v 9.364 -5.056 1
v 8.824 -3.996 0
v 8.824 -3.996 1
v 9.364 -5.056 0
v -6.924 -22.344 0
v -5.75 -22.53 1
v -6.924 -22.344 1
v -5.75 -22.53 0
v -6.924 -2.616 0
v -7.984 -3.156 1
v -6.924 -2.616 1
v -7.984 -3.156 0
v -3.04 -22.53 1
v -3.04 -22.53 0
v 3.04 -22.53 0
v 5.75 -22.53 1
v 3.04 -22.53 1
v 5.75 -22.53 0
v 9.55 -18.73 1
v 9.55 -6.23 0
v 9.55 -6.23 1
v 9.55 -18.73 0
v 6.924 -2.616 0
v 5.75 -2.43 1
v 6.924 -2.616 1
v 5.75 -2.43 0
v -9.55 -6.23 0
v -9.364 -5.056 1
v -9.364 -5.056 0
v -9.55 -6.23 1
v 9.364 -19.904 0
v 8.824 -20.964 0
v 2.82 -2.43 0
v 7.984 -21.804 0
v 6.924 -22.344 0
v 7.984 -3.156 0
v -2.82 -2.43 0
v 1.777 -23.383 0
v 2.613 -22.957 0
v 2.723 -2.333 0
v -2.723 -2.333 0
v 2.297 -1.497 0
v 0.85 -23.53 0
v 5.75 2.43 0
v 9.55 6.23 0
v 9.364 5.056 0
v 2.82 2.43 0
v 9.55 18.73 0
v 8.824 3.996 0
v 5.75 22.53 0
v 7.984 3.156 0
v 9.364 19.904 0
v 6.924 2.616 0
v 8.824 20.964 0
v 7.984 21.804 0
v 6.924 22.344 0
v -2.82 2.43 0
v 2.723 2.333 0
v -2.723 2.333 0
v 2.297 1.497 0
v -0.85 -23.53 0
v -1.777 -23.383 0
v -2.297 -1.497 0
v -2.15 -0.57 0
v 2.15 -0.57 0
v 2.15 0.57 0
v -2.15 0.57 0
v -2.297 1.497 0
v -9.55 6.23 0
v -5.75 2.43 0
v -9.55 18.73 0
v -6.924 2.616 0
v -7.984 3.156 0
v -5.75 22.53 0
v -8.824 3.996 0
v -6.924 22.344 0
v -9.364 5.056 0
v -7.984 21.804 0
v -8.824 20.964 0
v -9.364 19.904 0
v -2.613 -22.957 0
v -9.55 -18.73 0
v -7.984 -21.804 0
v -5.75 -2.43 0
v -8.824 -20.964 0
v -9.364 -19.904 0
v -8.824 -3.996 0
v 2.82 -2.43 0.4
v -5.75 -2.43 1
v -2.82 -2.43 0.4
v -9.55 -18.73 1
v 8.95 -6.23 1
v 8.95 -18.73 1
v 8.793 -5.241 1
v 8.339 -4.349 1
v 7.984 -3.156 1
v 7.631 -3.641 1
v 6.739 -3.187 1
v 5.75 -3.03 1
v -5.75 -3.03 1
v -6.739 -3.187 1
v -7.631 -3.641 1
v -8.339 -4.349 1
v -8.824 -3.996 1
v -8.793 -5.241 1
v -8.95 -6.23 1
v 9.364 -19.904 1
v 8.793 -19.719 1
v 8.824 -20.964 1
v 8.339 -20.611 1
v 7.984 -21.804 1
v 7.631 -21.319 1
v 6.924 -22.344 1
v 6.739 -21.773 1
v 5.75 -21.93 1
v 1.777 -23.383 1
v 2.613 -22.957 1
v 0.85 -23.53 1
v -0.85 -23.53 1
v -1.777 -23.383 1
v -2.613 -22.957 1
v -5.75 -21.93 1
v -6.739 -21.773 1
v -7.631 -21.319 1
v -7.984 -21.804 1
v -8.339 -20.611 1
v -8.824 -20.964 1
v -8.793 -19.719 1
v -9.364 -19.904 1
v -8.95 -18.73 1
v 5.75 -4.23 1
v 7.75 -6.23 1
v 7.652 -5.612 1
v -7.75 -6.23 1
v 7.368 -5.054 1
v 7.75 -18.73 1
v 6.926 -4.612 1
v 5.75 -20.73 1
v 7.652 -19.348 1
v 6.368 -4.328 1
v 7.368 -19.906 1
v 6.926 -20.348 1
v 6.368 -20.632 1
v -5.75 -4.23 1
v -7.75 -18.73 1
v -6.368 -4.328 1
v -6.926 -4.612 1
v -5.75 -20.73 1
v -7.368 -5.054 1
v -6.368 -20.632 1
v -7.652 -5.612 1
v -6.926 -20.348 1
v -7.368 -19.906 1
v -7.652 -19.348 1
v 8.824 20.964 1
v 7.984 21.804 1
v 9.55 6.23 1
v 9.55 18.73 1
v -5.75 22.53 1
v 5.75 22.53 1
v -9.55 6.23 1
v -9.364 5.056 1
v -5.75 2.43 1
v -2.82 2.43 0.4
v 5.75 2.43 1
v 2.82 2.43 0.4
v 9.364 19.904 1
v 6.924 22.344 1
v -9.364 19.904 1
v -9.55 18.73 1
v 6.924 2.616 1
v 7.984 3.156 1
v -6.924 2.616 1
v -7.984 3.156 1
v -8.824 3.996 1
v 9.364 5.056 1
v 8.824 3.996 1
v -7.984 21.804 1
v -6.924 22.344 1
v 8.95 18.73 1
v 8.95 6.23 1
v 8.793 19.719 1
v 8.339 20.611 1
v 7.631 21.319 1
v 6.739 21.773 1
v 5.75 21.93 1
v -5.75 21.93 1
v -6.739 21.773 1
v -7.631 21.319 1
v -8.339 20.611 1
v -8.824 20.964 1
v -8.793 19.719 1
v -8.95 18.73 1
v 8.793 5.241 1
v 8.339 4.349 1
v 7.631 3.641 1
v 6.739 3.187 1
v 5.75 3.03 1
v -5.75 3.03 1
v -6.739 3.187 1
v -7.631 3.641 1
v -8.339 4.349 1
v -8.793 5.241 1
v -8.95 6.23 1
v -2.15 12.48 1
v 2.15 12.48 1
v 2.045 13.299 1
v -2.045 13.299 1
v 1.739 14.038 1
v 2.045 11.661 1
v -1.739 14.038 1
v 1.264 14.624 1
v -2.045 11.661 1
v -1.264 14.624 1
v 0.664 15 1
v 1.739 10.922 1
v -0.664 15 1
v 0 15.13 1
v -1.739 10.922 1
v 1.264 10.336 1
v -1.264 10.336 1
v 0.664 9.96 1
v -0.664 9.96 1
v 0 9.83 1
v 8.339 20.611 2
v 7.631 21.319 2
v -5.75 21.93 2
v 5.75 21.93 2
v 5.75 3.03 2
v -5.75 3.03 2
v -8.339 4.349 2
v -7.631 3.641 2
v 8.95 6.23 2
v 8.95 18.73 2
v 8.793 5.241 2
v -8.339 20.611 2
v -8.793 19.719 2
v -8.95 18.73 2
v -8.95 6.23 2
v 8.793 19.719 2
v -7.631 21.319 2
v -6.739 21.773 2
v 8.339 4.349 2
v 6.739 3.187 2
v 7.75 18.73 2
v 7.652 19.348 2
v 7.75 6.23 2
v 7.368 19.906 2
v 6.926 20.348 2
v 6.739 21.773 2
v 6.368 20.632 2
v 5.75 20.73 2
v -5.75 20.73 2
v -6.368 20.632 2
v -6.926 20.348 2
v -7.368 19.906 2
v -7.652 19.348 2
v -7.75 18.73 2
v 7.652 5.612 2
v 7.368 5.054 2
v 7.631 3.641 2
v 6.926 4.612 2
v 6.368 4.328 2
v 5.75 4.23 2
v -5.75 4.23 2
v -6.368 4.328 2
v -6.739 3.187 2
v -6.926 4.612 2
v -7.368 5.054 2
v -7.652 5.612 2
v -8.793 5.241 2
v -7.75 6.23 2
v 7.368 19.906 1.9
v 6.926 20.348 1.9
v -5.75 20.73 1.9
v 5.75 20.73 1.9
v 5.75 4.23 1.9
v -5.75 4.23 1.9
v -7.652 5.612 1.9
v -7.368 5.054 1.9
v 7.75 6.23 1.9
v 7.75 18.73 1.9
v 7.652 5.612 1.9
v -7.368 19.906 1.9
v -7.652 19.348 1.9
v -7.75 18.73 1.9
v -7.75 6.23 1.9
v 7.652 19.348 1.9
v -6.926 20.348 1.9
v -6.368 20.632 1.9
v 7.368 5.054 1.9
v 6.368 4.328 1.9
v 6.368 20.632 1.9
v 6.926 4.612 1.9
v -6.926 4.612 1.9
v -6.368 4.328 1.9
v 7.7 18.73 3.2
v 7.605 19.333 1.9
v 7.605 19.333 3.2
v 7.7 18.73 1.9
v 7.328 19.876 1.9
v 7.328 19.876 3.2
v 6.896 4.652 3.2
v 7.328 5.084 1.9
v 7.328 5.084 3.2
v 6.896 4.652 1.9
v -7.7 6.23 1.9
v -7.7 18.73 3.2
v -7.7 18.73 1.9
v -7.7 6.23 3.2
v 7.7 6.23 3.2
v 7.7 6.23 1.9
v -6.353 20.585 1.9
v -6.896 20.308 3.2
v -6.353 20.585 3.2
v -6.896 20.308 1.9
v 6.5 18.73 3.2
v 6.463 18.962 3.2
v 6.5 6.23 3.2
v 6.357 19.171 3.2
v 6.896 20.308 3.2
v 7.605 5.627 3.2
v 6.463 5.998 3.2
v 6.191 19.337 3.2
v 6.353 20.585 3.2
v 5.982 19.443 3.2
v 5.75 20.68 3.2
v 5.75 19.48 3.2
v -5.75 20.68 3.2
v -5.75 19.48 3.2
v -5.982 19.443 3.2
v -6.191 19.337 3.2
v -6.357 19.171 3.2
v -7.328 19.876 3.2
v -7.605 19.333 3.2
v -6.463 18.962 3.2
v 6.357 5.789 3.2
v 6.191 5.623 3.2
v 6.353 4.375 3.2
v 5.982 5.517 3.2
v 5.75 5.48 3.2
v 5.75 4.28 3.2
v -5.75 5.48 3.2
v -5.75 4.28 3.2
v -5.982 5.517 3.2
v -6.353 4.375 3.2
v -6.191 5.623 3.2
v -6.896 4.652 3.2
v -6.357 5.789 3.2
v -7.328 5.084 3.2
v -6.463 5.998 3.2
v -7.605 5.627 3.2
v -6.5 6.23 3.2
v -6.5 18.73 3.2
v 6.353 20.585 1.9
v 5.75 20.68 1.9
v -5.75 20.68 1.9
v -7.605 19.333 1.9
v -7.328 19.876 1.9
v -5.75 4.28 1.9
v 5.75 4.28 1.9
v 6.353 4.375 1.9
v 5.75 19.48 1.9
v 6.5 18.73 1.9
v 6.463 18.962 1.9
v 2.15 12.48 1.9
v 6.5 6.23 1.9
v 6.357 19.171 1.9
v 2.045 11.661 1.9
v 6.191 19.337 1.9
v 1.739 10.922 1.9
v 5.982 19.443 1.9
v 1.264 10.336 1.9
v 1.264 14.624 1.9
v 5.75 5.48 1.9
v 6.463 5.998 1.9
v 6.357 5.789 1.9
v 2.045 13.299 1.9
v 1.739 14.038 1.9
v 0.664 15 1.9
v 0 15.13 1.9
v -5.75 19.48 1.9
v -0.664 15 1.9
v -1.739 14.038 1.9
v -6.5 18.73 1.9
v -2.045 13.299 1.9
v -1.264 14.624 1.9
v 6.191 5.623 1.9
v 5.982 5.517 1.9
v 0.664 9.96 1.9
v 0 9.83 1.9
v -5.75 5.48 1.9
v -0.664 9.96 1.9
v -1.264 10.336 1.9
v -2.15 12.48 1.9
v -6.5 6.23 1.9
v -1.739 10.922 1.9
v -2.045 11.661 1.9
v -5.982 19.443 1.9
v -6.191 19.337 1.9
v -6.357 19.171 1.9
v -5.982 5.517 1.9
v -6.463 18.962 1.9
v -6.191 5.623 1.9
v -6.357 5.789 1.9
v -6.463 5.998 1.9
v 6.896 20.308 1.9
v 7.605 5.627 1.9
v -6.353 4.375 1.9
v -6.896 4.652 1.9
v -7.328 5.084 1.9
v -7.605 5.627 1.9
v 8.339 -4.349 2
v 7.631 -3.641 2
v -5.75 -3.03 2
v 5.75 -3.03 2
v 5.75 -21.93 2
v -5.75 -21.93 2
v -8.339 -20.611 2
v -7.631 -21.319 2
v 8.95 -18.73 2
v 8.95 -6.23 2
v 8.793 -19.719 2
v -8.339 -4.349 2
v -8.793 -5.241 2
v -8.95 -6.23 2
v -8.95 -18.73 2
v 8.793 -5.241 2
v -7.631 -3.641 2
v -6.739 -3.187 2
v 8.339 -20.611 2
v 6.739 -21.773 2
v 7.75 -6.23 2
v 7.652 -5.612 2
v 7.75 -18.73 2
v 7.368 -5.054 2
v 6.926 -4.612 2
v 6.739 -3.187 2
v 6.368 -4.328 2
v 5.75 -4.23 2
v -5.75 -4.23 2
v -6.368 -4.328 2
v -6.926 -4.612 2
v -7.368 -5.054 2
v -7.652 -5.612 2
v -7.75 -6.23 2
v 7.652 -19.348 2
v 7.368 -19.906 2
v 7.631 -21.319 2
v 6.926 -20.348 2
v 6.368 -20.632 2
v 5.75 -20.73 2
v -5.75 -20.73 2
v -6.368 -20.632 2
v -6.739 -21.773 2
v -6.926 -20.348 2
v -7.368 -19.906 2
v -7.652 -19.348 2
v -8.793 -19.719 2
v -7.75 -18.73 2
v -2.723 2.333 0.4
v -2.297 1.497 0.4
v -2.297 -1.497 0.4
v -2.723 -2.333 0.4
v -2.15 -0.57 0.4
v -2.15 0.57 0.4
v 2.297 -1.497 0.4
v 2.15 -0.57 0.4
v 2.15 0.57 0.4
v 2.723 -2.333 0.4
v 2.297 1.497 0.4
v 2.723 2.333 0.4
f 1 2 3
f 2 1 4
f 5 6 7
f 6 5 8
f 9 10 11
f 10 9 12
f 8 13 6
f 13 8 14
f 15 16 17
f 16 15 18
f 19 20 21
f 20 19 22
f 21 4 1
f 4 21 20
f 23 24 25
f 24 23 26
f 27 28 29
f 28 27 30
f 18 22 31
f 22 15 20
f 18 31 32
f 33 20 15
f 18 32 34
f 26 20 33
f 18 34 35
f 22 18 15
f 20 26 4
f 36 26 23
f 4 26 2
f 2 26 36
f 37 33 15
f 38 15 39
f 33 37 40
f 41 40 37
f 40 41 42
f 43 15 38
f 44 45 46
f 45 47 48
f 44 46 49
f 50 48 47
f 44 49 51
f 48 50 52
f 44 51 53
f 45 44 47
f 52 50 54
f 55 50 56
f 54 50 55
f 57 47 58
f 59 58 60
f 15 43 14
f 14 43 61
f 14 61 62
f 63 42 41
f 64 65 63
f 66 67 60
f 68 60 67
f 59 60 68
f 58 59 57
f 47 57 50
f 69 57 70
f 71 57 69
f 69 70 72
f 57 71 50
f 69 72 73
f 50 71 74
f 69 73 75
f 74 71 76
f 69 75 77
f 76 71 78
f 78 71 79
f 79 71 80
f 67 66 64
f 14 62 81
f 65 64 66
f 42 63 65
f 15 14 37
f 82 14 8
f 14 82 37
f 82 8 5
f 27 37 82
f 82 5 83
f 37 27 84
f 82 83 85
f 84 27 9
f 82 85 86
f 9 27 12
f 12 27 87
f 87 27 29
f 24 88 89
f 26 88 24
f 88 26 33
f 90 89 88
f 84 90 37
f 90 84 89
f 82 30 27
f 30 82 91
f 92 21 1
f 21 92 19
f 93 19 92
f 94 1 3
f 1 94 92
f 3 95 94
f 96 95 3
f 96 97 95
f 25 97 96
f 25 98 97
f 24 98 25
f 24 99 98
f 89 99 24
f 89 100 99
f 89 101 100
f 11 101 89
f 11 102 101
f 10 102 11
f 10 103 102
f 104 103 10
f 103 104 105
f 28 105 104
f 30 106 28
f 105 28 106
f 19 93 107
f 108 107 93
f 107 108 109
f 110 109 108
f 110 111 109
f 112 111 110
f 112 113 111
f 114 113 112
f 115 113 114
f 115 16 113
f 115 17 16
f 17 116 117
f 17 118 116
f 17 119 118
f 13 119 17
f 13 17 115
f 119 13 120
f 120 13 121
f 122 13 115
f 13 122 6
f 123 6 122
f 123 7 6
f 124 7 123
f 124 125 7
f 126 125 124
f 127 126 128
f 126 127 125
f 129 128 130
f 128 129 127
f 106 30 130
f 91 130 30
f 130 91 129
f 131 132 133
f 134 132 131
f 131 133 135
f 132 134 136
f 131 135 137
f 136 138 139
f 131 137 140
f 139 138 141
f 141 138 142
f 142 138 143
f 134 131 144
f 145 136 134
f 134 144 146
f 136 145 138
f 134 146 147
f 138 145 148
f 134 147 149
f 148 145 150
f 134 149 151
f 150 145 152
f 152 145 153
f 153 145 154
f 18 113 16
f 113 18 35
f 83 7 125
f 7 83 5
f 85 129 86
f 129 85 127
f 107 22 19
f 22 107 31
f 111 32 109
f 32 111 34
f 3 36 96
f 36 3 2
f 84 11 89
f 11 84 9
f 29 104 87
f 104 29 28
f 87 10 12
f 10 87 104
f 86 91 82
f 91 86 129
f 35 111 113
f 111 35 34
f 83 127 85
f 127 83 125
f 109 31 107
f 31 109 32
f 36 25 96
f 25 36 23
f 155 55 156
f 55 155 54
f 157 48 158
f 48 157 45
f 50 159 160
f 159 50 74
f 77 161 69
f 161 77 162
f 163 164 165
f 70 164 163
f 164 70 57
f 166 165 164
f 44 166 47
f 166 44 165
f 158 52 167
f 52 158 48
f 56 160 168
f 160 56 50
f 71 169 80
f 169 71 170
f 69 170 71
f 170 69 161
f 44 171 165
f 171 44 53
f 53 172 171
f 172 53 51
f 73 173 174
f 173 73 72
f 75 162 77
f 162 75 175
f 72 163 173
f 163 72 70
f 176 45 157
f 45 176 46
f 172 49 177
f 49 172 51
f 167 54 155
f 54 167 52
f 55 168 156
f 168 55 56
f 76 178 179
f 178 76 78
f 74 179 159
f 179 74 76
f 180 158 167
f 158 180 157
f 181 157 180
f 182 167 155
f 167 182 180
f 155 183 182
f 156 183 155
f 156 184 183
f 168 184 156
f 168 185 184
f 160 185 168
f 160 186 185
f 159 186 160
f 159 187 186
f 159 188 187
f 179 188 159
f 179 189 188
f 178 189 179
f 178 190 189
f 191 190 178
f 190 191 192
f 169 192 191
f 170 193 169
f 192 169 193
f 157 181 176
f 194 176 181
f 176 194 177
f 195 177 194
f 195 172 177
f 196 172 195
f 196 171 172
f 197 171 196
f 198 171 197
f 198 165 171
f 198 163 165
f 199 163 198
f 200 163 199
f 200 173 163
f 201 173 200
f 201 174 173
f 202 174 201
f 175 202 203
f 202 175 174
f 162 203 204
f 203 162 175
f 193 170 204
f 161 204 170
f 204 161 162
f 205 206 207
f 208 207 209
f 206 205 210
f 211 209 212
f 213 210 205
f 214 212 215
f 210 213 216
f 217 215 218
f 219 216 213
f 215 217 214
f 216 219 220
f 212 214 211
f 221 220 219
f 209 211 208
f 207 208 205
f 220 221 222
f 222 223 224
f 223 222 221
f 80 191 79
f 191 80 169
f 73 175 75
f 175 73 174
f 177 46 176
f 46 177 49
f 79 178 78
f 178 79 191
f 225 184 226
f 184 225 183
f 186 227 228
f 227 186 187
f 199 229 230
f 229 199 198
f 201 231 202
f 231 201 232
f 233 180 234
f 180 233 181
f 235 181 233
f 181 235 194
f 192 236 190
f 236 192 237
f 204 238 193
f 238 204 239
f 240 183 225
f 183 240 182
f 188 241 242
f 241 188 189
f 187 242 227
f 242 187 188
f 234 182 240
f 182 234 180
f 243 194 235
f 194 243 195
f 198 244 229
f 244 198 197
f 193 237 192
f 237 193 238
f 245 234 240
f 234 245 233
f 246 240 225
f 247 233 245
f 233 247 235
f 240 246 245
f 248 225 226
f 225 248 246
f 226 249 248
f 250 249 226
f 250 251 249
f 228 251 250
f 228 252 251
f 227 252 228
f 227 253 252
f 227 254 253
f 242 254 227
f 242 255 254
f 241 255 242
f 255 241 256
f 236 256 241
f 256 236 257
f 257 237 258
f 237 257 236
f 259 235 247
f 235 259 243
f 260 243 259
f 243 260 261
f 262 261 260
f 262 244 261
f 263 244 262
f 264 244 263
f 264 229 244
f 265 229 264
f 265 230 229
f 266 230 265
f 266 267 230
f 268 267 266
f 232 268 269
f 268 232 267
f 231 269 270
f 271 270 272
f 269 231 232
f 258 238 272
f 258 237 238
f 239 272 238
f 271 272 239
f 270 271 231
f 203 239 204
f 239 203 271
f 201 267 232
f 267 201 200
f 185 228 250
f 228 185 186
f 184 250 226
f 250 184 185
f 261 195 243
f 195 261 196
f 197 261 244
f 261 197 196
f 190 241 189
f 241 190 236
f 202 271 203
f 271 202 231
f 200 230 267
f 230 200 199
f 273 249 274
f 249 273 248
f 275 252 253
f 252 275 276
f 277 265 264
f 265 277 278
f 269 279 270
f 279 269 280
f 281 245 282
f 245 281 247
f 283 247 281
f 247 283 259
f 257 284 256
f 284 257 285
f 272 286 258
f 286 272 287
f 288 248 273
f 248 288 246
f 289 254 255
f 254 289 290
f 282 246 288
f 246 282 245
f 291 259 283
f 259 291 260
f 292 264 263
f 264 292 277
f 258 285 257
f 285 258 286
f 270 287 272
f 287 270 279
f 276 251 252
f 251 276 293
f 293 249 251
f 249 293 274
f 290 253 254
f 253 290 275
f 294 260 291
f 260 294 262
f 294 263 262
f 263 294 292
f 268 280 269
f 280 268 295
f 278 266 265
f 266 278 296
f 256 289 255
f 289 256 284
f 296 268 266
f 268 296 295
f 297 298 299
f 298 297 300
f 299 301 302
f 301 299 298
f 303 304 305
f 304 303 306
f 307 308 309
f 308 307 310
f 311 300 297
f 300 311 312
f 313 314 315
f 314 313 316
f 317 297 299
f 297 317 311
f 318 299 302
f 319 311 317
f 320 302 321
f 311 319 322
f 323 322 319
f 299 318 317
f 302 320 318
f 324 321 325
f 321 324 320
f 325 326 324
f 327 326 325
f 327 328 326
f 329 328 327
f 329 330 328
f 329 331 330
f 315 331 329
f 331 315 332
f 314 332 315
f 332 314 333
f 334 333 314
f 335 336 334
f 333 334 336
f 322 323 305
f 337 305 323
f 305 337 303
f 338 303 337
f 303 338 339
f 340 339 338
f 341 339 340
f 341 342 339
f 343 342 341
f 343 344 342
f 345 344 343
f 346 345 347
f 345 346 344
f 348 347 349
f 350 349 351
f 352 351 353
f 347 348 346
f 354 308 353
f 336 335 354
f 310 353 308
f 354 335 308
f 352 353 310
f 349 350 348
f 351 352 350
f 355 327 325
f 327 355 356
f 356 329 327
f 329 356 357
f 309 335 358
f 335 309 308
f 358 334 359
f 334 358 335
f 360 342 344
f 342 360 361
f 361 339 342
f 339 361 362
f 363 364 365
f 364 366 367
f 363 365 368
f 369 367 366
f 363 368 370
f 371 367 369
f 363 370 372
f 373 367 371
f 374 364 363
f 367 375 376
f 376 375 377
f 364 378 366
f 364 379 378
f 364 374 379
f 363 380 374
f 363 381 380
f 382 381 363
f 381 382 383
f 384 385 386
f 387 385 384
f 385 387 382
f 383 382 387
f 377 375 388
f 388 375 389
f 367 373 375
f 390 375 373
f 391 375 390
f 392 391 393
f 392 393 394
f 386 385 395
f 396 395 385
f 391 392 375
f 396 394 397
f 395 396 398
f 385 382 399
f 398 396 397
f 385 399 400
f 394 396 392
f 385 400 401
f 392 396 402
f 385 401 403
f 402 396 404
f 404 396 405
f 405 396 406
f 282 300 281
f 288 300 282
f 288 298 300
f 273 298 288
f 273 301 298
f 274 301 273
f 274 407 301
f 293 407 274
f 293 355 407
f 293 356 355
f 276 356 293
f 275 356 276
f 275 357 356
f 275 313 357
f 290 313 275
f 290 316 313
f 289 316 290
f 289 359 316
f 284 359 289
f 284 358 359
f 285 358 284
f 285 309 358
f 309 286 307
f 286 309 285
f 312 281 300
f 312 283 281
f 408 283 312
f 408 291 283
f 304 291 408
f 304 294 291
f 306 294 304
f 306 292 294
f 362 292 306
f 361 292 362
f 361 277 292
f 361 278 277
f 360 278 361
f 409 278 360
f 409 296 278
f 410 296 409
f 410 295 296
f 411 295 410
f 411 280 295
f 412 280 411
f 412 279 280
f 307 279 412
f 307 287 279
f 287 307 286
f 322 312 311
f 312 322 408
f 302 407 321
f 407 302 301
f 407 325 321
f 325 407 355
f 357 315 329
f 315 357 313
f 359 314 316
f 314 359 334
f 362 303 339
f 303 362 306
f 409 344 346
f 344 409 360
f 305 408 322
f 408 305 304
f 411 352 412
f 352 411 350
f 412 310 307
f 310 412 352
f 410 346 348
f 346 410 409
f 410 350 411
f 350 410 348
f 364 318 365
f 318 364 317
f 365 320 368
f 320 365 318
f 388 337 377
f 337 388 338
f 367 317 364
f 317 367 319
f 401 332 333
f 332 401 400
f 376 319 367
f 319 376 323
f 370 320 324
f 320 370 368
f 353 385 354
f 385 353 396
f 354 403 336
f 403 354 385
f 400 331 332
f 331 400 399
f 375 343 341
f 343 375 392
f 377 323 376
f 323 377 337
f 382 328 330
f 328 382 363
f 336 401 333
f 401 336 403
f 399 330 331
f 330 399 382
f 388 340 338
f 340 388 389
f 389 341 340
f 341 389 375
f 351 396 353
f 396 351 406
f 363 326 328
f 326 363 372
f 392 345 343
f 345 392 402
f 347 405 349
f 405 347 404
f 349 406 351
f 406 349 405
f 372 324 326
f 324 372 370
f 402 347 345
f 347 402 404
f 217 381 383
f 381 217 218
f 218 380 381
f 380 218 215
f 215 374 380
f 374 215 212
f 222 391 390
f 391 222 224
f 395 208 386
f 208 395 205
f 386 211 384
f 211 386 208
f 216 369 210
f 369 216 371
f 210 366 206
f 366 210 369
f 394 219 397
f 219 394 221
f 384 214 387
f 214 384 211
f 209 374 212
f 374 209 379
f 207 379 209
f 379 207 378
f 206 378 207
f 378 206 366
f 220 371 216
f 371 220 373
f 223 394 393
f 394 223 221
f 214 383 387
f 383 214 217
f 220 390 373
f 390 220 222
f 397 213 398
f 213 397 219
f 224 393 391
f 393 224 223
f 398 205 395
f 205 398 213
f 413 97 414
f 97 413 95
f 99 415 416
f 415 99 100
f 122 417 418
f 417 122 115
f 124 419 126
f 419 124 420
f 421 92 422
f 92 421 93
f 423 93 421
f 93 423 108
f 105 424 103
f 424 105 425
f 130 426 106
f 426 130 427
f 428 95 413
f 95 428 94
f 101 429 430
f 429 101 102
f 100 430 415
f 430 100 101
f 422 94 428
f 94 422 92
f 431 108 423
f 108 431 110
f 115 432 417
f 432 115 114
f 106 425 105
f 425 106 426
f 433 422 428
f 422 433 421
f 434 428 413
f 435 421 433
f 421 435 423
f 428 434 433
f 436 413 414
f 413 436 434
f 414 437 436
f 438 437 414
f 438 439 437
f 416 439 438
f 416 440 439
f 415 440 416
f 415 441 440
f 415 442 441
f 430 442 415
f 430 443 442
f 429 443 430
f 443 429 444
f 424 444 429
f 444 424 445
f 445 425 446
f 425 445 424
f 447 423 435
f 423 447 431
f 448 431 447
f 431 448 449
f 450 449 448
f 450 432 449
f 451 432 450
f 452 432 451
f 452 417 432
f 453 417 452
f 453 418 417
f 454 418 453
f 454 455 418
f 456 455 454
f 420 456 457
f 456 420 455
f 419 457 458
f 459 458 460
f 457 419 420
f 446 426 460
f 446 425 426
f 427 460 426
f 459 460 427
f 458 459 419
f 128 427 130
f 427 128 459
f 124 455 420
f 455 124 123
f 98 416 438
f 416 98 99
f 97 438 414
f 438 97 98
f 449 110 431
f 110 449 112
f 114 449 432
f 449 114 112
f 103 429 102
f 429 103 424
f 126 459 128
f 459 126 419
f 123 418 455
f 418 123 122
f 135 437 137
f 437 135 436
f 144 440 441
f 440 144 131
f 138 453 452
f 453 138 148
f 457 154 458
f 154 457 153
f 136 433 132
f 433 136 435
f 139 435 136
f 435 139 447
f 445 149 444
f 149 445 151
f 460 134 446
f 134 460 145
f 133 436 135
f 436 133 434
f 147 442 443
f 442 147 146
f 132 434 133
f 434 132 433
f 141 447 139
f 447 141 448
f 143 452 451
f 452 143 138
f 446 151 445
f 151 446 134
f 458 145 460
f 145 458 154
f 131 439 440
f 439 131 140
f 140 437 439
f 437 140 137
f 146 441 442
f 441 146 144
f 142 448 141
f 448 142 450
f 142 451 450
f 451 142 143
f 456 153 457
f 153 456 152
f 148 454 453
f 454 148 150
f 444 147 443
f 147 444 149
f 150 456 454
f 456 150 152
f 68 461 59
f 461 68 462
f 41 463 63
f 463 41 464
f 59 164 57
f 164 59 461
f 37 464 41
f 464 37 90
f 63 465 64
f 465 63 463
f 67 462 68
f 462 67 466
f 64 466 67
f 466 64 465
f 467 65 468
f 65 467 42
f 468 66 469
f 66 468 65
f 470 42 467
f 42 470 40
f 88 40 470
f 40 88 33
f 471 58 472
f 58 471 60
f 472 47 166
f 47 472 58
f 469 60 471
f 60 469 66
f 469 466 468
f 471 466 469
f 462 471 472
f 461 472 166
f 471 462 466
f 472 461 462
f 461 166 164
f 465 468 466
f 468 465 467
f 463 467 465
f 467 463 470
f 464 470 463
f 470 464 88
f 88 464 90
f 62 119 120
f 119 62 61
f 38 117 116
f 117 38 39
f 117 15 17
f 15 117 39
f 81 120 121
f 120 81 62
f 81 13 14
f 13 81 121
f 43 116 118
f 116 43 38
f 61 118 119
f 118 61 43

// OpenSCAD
/*
Opal case by Brian Khuu 2019

Remixed from https://www.thingiverse.com/thing:1563872/files

*/

/*[opal Settings]*/

// Height of the threaded part of the opal [mm]
opal_base_mm = 1;

// Height of the tip part of the opal [mm]
opal_top_height = 1;

// Diameter of the threaded part of the opal [mm]
opalBaseDia = 6; // REMOVE
opal_oval_width = 4;
opal_oval_length = 5;

// Quantity of opals in X-direction
width_number = 1;

// Quantity of opals in Y-direction (see lblText if changed)
length_number = 1;

// Distance between and at the edges of the opal holes in X-direction [mm]
widthDistance = 5;
// Distance between and at the edges of the opal holes in Y-direction [mm]
lengthDistance = 5;

// General inaccuracy for the opal holes. Reduce to get a tighter fit [mm]
inaccuracy = 0.3;

opalBaseDia_w_ina = opal_oval_width + inaccuracy;
opalBaseDia_l_ina = opal_oval_length + inaccuracy;

/*[Dimensions]*/

// Case interior fillet radius [mm]
interiorFillet = 2.0;

// Width of the hinge [mm]
hingeWidth = width_number * opalBaseDia_w_ina + (width_number+1) * widthDistance - 10;

/*[Walls]*/

// Horizontal wall (top and bottom) thickness [mm]
coverThickness = 1.0; 

// Vertical wall (side) thickness [mm]
sidewallWidth = 1.2; 

// Amount the lid protrudes into the case (larger value allows the case to close more securely) [mm]
lidInsetHeight = 1.2;

// Thickness of the hinge (it should be no more than a few layers thick keep it flexible) [mm]
hingeThickness = 0.4;

// hinge length multiplier (as a function of case height - longer hinges may be needed for less flexible plastics)
hingeLengthScale = 1.1;

// Width of the case in mm (interior dimension)
interiorWidth = width_number * opalBaseDia_w_ina + (width_number+1) * widthDistance + sidewallWidth;

// Length of the case in mm (interior dimension)
interiorLength = length_number * opalBaseDia_l_ina + (length_number+1) * lengthDistance + sidewallWidth;

// Height of the case in mm (interior dimension)
interiorHeight = opal_base_mm + opal_top_height + 0.6;

/*[Details]*/

// Distance the top and bottom surfaces extend beyond the sides of the case (makes the case easier to open) [mm]
rimInset = 0.6; 

// Length of the opening tab on the lid of the case (optional - set to 0 to remove)
tabSize = 1; 

// Fillet radius used for hinge and tab
hingeFillet = 3;


/*[Printer Tolerances]*/

// Adjust the tightness of the closed case (larger value makes the case looser, negative value makes it tighter - try adjusting in 0.1mm increments)
lidInsetOffset = 0.1;

/*[hidden]*/

$fn = 20; // resolution

eps = 0.1;




module case()
{
  // minimal error checking
  hingeWidth = min(hingeWidth, interiorWidth);
  hingeThickness = min(hingeThickness, coverThickness);
  lidInsetHeight = min(lidInsetHeight, interiorHeight);

  baseLength = interiorLength + sidewallWidth*2;
  baseWidth = interiorWidth + sidewallWidth*2;
  baseRadius = interiorFillet + sidewallWidth;

  caseLength = baseLength + rimInset*2;
  caseWidth = baseWidth + rimInset*2;
  caseRadius = baseRadius + rimInset;

  hingeLength = hingeLengthScale * interiorHeight + coverThickness*2;
  centerY = (caseLength + hingeLength)/2;

  filletXOffset = hingeWidth/2 + hingeFillet;
  filletYOffset = hingeLength/2 - hingeFillet;


  module rrect(h, w, l, r) {
    r = min(r, min(w/2, l/2));
    w = max(w, eps);
    l = max(l, eps);
    h = max(h, eps);
    if (r <= 0) {
      translate([-w/2, -l/2,0]) {
        cube([w,l,h]);
      }
    } else {
      hull() {
        for (y = [-l/2+r, l/2-r]) {
          for (x = [-w/2+r, w/2-r]) {
            translate([x,y,0]) {
              cylinder(h=h, r=r, center=false);
            }
          }
        }
      }
    }
  }

  module rrectTube(h, ow, ol, or, t) {
    difference() {
      rrect(h=h, w=ow, l=ol, r=or);
      translate([0,0,-eps]) {
        rrect(h=h+eps*2, w=ow-t*2, l=ol-t*2, r=or-t);
      }
    }
  }

  union() {
    // bottom surfaces
    for (i = [-centerY, centerY]) {
      translate([0,i,0]) {
        rrect(h=coverThickness, w=caseWidth, l=caseLength, r=caseRadius);
      }
    }

    translate([0,0,coverThickness-eps]) {

            // base
      translate([0,centerY,0]) {
        rrectTube(h=opal_base_mm+eps, ow=baseWidth, ol=baseLength, or=baseRadius, t=sidewallWidth);
            
            //lid
                translate([0,0,opal_base_mm])
                rrectTube(h=lidInsetHeight+eps, ow=interiorWidth - lidInsetOffset, ol=interiorLength - lidInsetOffset, or=interiorFillet - lidInsetOffset/2, t=sidewallWidth);

            // opalcase
                difference() {
                    rrect(h=opal_base_mm, w=baseWidth, l=baseLength, r=baseRadius);
                    opals_dimples();
                } 
      }
            

      
      translate([0,-centerY,0]) {

             // lid   
                rrectTube(h=opal_top_height+eps, ow=baseWidth, ol=baseLength, or=baseRadius, t=sidewallWidth);
      }
    }

    // hinge
    if (hingeWidth > caseWidth - caseRadius*2) {
      translate([-hingeWidth/2,-centerY,0]) {
        cube([hingeWidth, centerY*2, hingeThickness]);
      }
    } else {
      difference() {
        translate([-hingeWidth/2 - hingeFillet,-centerY,0]) {
          cube([hingeWidth + hingeFillet*2, centerY*2, hingeThickness]);
        }
  
        // fillet hinge
        for (x = [-filletXOffset, filletXOffset]) {
          hull() {
            for (y = [-filletYOffset, filletYOffset]) {
              translate([x,y,-eps]) {
                cylinder(h=hingeThickness + eps*2, r=hingeFillet, center=false);
              }
            }
          }
        }
      }
    }

    // tab
    if (tabSize > 0) {
      hull() {
        for (x = [hingeFillet - hingeWidth/2, hingeWidth/2 - hingeFillet]) {
          translate([x,-caseLength - hingeLength/2 - tabSize + hingeFillet,0]) {
            cylinder(h=coverThickness, r=hingeFillet, center=false);
          }
        }
        translate([-hingeWidth/2,-centerY,0]) {
          cube([hingeWidth, eps, coverThickness]);
        }
      }
    }
  }


}


module opals_dimples()
{
    module ovalshape(w,l,h)
    {
      linear_extrude(h)
        resize(newsize=[w,l,1]) 
          circle(r=1);
    }

    translate([opalBaseDia_w_ina/2 - (width_number/2)*opalBaseDia_w_ina - ((width_number-1)/2)*widthDistance, opalBaseDia_l_ina/2 - (length_number/2)*opalBaseDia_l_ina - ((length_number-1)/2)*lengthDistance, 0])
    {
    for(n = [0 : width_number - 1])
    {
        for(m = [0 : length_number - 1])
        {
            translate([n * (opalBaseDia_w_ina + widthDistance), m * (opalBaseDia_l_ina + lengthDistance),0])
            {
              ovalshape(opalBaseDia_w_ina, opalBaseDia_l_ina, opal_base_mm);
            }
        }    
    }
}
}


case();

// preview[view:north, tilt:top]
